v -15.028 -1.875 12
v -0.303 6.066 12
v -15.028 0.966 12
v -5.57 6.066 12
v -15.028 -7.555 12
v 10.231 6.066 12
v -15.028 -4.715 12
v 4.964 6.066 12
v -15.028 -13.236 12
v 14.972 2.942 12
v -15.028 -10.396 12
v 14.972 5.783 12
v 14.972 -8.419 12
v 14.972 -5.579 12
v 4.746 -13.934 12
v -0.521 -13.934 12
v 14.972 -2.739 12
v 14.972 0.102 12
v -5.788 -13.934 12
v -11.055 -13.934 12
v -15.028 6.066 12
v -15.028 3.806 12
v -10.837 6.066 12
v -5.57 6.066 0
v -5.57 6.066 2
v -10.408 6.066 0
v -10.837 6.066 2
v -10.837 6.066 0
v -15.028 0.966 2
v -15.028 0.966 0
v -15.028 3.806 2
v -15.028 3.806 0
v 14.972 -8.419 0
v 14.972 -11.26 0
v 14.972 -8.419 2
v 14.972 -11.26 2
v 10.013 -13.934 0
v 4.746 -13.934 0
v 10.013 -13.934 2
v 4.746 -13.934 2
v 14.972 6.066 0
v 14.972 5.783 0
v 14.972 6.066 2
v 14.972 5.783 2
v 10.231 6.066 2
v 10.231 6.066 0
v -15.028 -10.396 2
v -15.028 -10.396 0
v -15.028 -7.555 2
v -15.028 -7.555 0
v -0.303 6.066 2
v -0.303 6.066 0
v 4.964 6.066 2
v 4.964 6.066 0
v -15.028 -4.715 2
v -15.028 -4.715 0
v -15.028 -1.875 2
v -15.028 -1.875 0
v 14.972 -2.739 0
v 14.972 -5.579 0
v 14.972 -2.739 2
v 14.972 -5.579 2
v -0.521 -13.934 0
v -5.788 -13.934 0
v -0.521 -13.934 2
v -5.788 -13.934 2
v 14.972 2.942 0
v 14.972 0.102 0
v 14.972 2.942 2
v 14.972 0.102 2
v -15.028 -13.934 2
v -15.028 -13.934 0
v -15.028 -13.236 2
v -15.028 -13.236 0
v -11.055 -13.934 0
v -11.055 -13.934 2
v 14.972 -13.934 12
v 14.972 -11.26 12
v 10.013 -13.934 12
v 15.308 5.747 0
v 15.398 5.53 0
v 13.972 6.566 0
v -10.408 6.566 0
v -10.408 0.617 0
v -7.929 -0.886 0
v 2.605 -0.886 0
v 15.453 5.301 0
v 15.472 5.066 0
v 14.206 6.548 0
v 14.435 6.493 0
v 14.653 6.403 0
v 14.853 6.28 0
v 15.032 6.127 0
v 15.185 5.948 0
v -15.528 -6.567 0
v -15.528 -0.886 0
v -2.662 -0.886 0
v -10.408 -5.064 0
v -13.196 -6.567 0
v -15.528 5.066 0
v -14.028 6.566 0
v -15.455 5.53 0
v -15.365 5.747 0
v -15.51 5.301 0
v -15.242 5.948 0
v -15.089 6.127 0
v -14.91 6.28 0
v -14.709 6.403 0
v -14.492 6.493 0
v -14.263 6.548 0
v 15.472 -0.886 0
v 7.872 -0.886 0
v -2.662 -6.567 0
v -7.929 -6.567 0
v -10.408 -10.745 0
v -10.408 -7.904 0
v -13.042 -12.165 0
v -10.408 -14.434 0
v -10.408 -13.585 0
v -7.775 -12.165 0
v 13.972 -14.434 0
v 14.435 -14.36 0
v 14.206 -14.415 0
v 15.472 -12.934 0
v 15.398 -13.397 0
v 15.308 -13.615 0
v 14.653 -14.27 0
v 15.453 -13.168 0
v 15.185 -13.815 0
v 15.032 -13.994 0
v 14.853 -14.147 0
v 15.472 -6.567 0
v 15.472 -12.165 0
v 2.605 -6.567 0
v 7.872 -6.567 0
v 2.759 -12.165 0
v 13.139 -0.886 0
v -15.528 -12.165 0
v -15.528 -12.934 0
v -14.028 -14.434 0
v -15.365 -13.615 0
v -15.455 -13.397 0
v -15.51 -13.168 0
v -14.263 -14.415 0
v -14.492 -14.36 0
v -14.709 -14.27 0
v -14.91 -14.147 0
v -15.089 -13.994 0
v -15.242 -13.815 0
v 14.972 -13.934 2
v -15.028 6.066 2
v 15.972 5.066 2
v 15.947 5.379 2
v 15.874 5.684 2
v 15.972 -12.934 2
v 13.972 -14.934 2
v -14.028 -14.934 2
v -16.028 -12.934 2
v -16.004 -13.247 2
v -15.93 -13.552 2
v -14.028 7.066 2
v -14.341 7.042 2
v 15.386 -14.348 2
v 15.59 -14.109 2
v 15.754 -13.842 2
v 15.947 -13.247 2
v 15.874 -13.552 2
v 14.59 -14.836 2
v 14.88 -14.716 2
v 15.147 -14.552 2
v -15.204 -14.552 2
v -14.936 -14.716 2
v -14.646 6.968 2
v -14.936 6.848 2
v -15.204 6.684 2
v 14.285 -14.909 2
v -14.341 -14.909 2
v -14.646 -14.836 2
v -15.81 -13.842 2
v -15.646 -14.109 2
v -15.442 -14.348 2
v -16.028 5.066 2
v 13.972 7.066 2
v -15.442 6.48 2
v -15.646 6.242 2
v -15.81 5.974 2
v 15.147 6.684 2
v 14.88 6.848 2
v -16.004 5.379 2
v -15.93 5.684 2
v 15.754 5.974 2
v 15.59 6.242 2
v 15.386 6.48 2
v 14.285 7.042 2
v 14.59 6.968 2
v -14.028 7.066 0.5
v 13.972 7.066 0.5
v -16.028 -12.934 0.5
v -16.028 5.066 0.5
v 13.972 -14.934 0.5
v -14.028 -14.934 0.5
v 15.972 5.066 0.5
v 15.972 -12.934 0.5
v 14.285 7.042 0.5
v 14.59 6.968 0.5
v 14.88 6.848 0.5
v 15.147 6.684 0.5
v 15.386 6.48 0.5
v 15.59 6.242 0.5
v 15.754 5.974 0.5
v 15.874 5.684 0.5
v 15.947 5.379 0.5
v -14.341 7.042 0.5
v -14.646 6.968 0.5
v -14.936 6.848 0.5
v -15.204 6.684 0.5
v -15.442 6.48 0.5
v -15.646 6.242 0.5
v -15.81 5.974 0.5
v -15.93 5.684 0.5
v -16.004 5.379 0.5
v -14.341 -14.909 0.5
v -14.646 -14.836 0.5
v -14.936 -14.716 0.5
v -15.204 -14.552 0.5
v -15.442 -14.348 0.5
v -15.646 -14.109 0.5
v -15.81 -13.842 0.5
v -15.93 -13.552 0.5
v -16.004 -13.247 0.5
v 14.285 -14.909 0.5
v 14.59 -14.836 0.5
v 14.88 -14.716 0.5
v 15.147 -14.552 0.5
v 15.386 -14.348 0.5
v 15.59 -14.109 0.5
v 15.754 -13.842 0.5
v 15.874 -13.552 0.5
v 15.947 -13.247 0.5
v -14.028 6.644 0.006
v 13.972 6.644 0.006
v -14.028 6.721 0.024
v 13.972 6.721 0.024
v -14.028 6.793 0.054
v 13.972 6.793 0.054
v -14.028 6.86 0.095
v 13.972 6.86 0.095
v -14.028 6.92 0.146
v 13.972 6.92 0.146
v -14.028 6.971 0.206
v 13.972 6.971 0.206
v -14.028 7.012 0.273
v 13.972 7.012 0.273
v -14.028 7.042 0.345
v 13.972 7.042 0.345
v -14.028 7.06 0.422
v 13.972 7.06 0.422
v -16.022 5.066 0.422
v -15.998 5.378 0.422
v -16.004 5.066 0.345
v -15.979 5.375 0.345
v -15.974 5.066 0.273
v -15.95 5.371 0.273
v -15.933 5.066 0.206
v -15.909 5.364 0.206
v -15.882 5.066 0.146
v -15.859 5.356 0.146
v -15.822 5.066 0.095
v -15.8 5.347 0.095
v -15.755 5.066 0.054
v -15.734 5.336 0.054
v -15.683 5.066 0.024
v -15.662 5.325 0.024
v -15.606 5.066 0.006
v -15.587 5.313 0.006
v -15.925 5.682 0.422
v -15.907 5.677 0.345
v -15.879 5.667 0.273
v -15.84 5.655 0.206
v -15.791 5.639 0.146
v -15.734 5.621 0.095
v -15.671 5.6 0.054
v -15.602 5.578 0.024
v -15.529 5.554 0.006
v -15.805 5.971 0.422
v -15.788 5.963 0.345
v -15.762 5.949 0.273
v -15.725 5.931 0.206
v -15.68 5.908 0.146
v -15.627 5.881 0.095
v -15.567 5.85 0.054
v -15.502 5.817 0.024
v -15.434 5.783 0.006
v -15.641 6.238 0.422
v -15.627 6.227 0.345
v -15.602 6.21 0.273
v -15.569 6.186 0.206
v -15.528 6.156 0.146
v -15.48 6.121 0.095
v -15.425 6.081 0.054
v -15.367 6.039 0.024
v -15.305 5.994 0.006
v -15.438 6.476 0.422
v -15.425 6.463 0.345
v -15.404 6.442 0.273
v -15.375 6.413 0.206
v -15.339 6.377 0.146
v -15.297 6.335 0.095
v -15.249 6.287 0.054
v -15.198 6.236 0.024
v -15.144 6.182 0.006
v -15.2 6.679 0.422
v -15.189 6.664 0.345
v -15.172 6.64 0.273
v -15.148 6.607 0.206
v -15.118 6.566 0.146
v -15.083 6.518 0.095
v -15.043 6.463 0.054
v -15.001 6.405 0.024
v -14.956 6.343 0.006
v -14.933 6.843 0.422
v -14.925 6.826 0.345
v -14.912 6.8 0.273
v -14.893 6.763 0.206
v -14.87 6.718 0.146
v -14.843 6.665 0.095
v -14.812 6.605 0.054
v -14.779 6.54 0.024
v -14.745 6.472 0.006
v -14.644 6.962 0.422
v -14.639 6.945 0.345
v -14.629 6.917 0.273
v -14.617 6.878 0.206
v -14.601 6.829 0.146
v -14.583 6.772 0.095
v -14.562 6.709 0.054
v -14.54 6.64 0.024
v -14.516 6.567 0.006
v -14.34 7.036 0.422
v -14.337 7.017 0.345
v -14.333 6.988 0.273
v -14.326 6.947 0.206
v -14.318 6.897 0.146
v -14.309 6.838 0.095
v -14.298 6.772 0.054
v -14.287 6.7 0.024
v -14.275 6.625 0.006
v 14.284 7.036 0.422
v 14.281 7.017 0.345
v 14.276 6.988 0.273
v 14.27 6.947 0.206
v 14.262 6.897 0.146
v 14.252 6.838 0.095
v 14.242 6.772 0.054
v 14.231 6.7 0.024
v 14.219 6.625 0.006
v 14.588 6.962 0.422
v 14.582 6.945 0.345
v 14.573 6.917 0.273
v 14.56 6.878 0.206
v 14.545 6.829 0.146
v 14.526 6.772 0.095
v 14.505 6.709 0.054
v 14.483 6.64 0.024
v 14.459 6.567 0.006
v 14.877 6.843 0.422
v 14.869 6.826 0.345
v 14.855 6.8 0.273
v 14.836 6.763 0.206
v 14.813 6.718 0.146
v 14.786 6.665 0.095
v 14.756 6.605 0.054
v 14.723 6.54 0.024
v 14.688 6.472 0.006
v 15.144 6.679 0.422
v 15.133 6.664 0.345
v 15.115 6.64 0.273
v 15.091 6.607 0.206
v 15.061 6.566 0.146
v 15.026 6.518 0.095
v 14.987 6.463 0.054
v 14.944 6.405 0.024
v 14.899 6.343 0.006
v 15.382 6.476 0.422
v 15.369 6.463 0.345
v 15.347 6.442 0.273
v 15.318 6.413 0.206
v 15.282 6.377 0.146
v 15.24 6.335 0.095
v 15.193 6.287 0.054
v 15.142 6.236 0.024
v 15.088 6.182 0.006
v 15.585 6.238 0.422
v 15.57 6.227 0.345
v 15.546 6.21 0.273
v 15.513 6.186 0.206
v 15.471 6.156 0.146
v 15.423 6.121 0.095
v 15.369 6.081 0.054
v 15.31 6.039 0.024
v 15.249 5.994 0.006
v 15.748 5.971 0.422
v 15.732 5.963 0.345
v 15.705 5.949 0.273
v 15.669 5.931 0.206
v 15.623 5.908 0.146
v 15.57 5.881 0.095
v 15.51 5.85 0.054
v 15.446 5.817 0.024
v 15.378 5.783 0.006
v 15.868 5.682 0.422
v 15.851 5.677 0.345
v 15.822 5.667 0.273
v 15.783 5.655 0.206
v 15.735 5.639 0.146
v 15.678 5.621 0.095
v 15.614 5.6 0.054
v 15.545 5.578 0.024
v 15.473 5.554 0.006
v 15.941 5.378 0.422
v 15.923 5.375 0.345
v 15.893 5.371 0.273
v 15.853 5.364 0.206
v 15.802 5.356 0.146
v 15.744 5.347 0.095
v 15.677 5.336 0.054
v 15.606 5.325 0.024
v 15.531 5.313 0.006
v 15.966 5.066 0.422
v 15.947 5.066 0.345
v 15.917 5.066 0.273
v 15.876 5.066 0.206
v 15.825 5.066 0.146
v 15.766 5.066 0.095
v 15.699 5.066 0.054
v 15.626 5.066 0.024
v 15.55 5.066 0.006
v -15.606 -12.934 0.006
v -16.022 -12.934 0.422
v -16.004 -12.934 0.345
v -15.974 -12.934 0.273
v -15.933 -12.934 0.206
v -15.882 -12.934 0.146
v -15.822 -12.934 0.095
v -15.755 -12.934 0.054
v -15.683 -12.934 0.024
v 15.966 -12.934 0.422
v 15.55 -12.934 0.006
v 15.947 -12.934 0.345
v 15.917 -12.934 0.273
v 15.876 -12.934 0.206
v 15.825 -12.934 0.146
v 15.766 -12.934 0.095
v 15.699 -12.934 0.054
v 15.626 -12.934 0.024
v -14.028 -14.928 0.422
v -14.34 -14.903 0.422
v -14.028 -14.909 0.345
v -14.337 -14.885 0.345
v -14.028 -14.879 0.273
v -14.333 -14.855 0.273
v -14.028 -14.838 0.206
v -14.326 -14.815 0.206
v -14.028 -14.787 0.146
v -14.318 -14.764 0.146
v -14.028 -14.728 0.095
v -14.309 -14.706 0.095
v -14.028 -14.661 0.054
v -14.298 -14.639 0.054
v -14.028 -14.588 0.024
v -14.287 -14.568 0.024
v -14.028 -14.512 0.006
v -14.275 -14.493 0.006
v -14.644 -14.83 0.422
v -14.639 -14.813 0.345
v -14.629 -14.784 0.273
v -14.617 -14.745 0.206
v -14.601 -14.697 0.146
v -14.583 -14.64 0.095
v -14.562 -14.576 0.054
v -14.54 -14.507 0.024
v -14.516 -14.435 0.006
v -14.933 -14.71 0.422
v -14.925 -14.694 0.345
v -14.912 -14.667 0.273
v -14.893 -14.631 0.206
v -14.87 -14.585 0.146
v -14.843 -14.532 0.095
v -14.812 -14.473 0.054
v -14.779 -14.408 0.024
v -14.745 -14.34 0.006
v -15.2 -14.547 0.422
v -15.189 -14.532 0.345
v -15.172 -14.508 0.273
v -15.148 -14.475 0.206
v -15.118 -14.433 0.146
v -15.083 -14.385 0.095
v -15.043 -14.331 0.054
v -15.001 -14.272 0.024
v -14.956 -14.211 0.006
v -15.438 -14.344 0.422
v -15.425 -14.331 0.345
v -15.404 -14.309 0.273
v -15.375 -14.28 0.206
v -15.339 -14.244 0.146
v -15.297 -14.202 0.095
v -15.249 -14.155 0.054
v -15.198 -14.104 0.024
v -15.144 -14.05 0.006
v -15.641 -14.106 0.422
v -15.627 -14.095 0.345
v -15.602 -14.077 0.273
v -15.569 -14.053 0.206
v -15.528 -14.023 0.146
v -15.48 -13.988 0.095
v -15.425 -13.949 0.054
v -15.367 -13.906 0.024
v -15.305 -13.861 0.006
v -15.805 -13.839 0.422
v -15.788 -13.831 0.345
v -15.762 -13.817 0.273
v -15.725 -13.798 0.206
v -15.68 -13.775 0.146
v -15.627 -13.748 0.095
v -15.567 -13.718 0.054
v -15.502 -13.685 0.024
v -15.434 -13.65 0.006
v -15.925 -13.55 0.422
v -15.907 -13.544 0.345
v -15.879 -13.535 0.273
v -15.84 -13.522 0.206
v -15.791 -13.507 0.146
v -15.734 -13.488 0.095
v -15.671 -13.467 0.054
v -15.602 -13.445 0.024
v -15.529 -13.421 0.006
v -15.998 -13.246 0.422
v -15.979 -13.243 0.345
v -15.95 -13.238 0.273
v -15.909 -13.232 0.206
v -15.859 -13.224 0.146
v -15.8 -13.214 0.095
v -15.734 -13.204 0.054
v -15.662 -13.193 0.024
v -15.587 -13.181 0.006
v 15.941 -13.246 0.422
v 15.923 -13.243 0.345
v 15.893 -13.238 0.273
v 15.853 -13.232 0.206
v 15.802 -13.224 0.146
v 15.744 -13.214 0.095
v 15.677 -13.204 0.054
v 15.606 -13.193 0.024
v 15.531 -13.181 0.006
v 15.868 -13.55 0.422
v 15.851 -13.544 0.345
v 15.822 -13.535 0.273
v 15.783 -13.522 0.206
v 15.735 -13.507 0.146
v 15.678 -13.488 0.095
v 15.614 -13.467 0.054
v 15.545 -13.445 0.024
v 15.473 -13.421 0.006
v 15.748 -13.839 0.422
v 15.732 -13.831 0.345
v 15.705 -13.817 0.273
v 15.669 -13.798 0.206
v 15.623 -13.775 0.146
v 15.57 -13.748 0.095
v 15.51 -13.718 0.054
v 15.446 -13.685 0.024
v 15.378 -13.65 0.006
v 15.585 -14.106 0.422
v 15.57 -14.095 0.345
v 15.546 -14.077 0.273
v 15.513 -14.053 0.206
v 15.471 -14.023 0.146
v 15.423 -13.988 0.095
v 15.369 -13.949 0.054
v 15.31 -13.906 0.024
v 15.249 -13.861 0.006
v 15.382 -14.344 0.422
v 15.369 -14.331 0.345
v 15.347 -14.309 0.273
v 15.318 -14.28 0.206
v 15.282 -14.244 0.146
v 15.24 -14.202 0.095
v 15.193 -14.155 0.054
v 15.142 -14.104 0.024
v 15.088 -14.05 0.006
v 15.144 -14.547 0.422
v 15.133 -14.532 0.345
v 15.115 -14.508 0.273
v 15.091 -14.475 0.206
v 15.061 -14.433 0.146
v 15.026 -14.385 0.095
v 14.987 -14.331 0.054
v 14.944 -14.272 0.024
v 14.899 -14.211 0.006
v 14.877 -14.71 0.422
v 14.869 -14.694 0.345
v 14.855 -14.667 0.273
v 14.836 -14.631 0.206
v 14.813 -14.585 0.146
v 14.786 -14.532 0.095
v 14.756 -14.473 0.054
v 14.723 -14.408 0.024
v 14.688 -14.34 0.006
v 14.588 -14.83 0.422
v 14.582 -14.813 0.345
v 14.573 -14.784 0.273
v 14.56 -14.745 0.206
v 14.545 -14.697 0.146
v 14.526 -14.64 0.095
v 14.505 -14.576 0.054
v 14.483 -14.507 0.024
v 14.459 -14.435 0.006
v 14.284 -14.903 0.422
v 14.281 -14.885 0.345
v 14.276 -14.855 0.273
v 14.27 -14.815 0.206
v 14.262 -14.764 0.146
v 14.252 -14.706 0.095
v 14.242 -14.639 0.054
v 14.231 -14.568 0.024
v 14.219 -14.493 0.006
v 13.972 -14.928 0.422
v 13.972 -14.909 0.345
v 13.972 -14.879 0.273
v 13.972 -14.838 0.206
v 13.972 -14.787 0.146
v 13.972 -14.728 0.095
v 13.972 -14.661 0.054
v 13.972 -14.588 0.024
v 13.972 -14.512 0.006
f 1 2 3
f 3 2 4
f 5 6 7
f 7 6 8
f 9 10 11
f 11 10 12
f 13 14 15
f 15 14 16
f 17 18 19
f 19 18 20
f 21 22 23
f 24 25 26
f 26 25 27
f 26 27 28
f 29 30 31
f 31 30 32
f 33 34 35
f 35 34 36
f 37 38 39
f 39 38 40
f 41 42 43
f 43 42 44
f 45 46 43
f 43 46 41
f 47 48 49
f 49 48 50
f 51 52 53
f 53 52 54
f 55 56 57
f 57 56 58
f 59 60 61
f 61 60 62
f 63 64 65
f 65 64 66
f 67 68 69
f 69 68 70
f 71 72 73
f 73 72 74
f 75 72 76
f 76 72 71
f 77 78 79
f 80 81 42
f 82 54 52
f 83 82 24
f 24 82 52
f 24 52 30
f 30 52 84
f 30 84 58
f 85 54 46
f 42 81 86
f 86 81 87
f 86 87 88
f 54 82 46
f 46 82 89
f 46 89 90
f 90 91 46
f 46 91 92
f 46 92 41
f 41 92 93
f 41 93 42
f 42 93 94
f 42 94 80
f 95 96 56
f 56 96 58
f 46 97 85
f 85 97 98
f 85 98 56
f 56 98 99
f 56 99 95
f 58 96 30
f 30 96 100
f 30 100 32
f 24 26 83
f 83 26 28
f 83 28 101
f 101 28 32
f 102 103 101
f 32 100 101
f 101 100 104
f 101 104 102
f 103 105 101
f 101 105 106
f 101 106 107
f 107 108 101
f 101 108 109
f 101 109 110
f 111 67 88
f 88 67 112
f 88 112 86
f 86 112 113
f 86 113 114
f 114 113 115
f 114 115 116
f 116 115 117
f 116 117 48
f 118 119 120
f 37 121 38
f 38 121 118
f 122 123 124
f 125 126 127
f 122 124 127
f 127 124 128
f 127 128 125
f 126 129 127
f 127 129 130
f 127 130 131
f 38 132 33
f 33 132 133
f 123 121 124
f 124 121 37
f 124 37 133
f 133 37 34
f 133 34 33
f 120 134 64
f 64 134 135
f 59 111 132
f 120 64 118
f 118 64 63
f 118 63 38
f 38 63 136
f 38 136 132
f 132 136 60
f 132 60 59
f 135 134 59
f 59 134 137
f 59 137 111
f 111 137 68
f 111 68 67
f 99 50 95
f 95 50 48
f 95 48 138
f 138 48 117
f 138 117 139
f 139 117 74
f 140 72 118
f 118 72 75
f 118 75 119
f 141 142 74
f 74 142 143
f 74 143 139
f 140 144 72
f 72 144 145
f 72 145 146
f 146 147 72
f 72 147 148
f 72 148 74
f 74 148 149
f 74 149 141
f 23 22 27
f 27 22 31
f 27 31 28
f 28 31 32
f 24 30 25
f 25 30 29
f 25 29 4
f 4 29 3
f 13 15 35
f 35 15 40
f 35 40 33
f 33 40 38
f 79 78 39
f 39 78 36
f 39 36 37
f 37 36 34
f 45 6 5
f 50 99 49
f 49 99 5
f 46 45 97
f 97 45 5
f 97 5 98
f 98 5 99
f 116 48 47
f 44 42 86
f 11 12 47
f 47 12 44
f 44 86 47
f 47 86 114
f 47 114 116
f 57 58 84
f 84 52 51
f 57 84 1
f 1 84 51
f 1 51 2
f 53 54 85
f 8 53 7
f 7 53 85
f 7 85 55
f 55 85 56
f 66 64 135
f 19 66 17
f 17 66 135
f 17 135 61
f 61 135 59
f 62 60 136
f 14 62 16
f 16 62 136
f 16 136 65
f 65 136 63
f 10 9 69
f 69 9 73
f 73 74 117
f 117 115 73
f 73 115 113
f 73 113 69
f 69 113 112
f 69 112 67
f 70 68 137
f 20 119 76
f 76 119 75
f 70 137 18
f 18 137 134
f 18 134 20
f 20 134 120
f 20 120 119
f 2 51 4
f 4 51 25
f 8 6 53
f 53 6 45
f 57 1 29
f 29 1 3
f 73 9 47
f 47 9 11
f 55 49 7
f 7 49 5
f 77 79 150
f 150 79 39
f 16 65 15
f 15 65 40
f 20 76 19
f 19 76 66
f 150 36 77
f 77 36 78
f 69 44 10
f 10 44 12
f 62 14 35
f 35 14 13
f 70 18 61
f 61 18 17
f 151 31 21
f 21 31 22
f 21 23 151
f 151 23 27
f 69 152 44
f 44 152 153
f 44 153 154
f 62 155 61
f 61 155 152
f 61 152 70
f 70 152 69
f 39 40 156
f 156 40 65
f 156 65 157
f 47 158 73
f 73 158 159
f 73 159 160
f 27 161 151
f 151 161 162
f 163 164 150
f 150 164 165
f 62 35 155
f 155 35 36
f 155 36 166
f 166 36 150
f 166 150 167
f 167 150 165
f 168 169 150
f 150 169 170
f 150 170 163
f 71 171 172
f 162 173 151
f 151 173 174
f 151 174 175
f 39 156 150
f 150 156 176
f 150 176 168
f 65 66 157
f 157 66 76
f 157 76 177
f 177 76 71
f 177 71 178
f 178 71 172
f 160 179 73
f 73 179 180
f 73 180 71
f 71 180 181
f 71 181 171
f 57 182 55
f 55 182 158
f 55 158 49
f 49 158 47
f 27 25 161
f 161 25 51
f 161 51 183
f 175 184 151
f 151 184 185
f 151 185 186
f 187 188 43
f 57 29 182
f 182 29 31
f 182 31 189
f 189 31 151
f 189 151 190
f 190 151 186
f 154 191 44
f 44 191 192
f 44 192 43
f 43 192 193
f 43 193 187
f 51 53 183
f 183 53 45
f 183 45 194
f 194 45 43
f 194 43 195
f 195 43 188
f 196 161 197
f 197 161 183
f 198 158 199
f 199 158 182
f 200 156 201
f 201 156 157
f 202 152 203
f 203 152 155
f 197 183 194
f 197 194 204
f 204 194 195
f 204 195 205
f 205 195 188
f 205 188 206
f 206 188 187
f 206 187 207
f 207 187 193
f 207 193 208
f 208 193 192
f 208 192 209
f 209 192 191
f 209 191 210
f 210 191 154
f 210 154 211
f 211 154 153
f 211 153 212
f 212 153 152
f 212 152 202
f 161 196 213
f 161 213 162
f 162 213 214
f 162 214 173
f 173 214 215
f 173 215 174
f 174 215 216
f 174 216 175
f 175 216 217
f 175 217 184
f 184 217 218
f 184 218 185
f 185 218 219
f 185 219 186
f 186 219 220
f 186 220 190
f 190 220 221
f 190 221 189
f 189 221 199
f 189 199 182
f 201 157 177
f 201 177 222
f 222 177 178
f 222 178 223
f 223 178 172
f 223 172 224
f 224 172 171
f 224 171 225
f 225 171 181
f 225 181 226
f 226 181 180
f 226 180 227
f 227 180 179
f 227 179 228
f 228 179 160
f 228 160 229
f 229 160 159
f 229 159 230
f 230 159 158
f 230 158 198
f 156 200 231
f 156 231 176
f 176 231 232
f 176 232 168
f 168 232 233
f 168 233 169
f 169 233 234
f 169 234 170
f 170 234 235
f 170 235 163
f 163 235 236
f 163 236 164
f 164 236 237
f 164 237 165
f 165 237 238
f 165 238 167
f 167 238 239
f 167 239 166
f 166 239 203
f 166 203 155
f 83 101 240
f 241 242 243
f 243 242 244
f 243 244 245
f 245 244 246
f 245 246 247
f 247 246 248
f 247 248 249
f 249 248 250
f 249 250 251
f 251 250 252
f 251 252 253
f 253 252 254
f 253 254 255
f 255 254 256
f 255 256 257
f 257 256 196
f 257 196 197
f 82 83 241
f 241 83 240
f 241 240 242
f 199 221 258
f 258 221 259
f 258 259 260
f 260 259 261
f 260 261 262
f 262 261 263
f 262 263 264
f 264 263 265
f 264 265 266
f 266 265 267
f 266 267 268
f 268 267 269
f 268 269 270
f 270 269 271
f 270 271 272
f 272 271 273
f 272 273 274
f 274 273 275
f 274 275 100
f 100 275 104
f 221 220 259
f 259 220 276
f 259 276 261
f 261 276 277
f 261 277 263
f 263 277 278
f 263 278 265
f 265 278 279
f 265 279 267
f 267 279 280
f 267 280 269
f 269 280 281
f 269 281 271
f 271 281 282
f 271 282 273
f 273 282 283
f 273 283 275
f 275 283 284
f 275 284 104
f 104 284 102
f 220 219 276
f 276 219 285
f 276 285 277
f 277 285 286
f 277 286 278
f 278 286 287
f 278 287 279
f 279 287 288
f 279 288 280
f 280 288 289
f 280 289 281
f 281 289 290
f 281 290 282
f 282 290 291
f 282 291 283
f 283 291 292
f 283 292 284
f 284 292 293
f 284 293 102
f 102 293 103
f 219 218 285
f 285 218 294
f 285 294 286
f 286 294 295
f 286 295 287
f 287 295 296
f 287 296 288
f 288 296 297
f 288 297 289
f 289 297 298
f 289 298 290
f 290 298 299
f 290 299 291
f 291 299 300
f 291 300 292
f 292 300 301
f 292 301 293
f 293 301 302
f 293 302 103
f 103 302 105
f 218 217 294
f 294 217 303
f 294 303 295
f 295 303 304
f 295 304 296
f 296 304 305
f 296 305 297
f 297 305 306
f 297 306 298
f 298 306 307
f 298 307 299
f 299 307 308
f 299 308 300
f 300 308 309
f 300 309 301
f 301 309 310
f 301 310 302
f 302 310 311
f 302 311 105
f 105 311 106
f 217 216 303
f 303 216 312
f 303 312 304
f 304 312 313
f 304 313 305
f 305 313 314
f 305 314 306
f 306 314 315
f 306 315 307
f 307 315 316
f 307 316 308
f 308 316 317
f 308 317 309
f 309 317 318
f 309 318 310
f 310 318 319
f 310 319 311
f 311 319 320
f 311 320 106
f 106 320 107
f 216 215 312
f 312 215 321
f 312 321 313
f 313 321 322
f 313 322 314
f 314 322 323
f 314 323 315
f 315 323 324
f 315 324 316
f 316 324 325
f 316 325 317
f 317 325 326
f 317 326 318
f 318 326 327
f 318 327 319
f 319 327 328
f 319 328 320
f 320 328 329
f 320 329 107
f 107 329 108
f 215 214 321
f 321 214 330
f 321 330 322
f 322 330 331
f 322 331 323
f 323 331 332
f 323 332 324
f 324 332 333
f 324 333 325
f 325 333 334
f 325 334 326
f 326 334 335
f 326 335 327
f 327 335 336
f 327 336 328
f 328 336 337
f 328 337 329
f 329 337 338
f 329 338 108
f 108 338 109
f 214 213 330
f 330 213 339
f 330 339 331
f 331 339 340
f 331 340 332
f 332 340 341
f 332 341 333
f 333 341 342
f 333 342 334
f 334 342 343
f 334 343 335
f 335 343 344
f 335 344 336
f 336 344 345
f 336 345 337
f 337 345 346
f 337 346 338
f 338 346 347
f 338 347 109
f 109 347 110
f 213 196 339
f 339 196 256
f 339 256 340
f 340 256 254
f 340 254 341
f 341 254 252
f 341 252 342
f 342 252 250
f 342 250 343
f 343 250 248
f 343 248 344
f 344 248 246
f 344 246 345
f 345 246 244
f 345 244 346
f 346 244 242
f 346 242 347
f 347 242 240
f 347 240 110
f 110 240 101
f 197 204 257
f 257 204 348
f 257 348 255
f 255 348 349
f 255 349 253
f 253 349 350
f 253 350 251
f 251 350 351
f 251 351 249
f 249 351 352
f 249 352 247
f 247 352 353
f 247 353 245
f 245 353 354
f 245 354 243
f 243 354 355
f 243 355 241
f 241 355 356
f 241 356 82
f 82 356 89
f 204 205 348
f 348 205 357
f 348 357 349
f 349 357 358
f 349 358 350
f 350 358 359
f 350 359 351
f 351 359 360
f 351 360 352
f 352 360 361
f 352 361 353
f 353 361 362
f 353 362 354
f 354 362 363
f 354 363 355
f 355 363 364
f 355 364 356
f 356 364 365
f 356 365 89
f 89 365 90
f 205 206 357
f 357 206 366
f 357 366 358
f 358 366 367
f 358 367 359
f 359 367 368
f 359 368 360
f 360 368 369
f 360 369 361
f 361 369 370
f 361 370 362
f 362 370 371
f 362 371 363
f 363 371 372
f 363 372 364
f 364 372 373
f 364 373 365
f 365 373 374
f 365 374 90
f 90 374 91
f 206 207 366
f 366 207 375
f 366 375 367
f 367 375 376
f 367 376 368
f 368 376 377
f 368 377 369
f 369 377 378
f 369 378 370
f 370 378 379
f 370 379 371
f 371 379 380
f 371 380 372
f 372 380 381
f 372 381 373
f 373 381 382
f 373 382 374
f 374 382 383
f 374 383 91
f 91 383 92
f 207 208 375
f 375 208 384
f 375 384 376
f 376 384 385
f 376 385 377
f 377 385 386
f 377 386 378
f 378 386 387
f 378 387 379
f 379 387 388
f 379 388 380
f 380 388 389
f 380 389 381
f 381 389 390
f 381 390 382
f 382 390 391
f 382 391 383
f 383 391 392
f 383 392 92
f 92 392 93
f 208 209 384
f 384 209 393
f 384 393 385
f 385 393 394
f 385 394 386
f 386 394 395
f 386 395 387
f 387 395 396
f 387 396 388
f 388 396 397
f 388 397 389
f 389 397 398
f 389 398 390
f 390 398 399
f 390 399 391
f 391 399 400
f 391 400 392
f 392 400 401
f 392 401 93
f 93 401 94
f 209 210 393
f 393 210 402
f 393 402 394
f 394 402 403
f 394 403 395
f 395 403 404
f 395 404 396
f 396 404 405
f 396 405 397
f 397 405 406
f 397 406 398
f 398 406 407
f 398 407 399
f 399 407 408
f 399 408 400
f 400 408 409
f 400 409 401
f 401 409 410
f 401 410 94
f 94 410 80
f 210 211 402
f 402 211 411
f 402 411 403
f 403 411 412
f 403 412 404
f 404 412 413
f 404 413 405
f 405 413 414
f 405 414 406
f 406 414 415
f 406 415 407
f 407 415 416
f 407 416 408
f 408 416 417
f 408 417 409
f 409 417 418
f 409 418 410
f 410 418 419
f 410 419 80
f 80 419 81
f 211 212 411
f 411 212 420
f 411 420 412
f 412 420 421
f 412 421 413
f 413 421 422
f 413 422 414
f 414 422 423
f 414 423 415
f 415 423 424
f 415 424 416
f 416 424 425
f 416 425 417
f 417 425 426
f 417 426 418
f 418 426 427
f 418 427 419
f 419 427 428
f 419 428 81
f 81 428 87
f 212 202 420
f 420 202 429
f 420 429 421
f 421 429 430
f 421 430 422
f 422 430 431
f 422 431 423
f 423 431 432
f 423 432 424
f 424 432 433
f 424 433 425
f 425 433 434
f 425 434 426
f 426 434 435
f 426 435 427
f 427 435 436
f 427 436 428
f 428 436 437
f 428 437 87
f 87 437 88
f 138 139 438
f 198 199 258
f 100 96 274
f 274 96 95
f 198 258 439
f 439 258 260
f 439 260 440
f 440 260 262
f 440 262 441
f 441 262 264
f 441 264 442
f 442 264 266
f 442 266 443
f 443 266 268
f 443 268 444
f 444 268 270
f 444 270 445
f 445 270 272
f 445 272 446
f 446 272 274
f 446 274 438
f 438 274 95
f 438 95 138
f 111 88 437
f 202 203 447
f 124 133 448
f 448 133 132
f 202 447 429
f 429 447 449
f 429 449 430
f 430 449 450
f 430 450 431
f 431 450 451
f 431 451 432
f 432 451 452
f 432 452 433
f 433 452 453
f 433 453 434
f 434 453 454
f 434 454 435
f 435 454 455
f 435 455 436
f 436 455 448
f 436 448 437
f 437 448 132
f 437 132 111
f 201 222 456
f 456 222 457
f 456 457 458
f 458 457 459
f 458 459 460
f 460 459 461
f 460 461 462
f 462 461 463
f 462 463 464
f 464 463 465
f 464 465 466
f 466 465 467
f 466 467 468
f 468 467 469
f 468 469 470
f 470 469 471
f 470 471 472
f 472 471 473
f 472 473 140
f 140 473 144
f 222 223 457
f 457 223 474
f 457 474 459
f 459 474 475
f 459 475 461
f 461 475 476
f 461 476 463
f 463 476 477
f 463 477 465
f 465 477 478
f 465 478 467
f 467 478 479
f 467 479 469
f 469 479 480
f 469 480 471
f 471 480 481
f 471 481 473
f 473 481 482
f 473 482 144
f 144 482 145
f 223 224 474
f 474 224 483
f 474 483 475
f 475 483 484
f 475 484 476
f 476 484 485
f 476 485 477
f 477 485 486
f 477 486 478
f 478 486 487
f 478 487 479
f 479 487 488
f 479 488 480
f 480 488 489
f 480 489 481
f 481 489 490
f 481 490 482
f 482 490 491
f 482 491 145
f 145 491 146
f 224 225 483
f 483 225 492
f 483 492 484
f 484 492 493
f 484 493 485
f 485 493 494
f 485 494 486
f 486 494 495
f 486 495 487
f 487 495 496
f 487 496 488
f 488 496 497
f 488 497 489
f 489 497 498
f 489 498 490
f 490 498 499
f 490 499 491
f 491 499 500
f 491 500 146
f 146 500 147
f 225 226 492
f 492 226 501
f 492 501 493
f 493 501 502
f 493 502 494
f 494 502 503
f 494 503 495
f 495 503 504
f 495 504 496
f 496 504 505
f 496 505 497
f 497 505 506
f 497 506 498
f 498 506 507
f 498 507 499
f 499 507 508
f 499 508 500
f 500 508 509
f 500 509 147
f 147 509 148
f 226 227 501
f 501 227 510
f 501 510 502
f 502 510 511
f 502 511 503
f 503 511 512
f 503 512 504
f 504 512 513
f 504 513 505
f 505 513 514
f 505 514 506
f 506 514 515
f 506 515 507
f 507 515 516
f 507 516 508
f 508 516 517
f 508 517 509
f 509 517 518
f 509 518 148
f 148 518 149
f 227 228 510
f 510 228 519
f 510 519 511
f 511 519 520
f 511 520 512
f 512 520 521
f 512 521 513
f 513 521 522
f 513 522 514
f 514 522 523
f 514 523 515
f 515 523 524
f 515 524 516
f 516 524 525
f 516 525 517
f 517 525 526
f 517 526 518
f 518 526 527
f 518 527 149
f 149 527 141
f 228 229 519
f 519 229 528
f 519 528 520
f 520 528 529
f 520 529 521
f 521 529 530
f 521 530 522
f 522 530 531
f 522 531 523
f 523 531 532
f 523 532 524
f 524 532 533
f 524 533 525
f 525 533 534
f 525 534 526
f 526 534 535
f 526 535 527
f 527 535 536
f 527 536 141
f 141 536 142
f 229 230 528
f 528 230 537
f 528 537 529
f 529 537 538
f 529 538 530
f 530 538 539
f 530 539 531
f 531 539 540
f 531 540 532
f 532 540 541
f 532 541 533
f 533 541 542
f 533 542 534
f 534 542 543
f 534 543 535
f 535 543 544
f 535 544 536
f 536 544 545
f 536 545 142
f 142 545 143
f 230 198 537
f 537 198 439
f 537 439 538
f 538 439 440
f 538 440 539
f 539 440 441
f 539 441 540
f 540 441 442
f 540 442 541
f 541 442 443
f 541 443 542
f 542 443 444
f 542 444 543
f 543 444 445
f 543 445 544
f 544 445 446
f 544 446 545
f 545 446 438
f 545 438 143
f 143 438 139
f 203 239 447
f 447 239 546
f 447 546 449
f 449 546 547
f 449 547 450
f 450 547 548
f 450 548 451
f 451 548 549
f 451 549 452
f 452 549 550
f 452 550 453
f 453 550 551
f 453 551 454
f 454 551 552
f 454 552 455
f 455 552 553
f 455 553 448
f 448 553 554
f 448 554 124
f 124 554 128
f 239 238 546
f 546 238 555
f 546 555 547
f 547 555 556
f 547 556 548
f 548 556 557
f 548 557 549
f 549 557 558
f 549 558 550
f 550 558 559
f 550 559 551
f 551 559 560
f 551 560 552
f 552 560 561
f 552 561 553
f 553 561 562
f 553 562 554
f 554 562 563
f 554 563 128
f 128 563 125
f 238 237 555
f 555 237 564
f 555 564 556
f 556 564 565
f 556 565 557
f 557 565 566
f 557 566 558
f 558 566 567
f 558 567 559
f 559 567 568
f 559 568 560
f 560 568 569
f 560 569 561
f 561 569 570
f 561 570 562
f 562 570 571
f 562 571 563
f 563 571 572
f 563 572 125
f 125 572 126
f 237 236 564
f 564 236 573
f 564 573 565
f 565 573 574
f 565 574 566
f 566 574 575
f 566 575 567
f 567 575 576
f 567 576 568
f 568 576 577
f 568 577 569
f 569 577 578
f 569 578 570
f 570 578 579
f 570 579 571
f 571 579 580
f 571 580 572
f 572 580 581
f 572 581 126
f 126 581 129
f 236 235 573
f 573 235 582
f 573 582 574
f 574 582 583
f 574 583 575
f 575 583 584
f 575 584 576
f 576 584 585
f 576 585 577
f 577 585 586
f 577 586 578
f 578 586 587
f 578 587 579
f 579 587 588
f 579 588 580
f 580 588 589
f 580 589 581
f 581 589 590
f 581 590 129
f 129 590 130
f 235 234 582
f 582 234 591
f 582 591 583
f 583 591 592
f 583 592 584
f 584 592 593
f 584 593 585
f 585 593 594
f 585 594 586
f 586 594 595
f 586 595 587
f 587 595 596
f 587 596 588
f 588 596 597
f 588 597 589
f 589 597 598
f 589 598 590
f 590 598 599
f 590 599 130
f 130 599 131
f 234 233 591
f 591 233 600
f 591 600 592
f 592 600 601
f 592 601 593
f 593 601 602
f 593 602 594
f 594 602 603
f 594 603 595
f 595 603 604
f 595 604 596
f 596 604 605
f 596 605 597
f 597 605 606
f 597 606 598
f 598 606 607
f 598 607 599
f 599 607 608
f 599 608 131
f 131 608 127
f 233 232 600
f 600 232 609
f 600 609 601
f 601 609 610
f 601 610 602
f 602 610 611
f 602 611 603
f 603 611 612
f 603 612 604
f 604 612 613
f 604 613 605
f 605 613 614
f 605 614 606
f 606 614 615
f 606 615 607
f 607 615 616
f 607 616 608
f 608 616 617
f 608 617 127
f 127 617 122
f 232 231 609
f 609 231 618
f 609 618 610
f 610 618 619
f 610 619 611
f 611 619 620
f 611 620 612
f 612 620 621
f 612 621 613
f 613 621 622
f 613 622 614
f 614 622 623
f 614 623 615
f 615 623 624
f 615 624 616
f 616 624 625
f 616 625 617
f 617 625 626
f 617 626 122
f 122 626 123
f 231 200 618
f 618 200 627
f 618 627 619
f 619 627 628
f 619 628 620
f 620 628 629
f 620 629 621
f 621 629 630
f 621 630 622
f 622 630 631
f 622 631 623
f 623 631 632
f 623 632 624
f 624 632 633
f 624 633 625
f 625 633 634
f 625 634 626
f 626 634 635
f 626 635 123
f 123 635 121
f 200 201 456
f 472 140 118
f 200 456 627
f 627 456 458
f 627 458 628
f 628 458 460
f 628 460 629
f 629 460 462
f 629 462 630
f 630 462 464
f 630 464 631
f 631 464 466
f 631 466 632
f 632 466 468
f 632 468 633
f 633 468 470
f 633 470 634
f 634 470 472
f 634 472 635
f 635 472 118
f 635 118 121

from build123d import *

# Parameters (mm, degrees)
SKETCH_1_W          = 35
SKETCH_1_H          = 25
EXTRUDE_1_DEPTH     = 12
CUT_EXTRUDE_1_DEPTH = 12
SKETCH_3_W          = 35
SKETCH_3_H          = 25
CUT_EXTRUDE_2_DEPTH = 10
FILLET_1_R          = 3
FILLET_2_R          = 0.5
SKETCH_4_W          = 32
SKETCH_4_H          = 22
CUT_EXTRUDE_3_DEPTH = 10
FILLET_3_R          = 2
FILLET_4_R          = 0.5


with BuildPart() as part:
    # 草图1 → 凸台-拉伸1 (new body)
    with BuildSketch(Plane.XY):
        with Locations((-0.028271405, -3.933764136)):
            Rectangle(SKETCH_1_W, SKETCH_1_H)
    extrude(amount=EXTRUDE_1_DEPTH)

    # 草图2 → 切除-拉伸1 (cut)
    with BuildSketch(Plane(origin=(0, 0, 0), x_dir=(-1, 0, 0), z_dir=(0, 0, -1))):
        Polygon((10.837079767, 6.066235864), (5.570103523, 6.066235864), (15.028271405, 0.96567043), (15.028271405, 3.806025698), align=None)
        Polygon((0.303127279, 6.066235864), (-4.963848965, 6.066235864), (15.028271405, -4.715040108), (15.028271405, -1.874684839), align=None)
        Polygon((-10.23082521, 6.066235864), (-14.971728595, 6.066235864), (-14.971728595, 5.782537258), (15.028271405, -10.395750645), (15.028271405, -7.555395376), align=None)
        Polygon((15.028271405, -13.236105913), (-14.971728595, 2.94218199), (-14.971728595, 0.101826721), (11.054988709, -13.933764136), (15.028271405, -13.933764136), align=None)
        Polygon((5.788012464, -13.933764136), (-14.971728595, -2.738528547), (-14.971728595, -5.578883816), (0.52103622, -13.933764136), align=None)
        Polygon((-4.745940024, -13.933764136), (-14.971728595, -8.419239085), (-14.971728595, -11.259594353), (-10.012916268, -13.933764136), align=None)
    extrude(amount=-CUT_EXTRUDE_1_DEPTH, mode=Mode.SUBTRACT)

    # 草图3 → 切除-拉伸2 (cut)
    with BuildSketch(Plane.XY.offset(12)):
        with Locations((-0.028271405, -3.933764136)):
            Rectangle(SKETCH_3_W, SKETCH_3_H)
        Polygon((10.23082521, 6.066235864), (14.971728595, 6.066235864), (14.971728595, 5.782537258), (14.971728595, 2.94218199), (14.971728595, 0.101826721), (14.971728595, -2.738528547), (14.971728595, -5.578883816), (14.971728595, -8.419239085), (14.971728595, -11.259594353), (14.971728595, -13.933764136), (10.012916268, -13.933764136), (4.745940024, -13.933764136), (-0.52103622, -13.933764136), (-5.788012464, -13.933764136), (-11.054988709, -13.933764136), (-15.028271405, -13.933764136), (-15.028271405, -13.236105913), (-15.028271405, -10.395750645), (-15.028271405, -7.555395376), (-15.028271405, -4.715040108), (-15.028271405, -1.874684839), (-15.028271405, 0.96567043), (-15.028271405, 3.806025698), (-15.028271405, 6.066235864), (-10.837079767, 6.066235864), (-5.570103523, 6.066235864), (-0.303127279, 6.066235864), (4.963848965, 6.066235864), align=None, mode=Mode.SUBTRACT)
    extrude(amount=-CUT_EXTRUDE_2_DEPTH, mode=Mode.SUBTRACT)

    # 圆角1
    fillet_1_edges = [part.edges().sort_by_distance(p)[0] for p in [
        (-17.528271405, 8.566235864, 1),
        (17.471728595, 8.566235864, 1),
        (17.471728595, -16.433764136, 1),
        (-17.528271405, -16.433764136, 1),
    ]]
    fillet(fillet_1_edges, radius=FILLET_1_R)

    # 圆角2
    fillet_2_edges = [part.edges().sort_by_distance(p)[0] for p in [
        (17.471728595, -3.933764136, 0),
        (-17.528271405, -3.933764136, 0),
        (-0.028271405, 8.566235864, 0),
        (-0.028271405, -16.433764136, 0),
        (16.593048938, 7.687556208, 0),
        (-16.649591749, 7.687556208, 0),
        (-16.649591749, -15.555084479, 0),
        (16.593048938, -15.555084479, 0),
    ]]
    fillet(fillet_2_edges, radius=FILLET_2_R)

    # 草图4 → 切除-拉伸3 (cut)
    with BuildSketch(Plane.XY.offset(2)):
        with BuildLine():
            ThreePointArc((-17.528271405, -13.433764136), (-16.649591749, -15.555084479), (-14.528271405, -16.433764136))
            Line((-14.528271405, -16.433764136), (14.471728595, -16.433764136))
            ThreePointArc((14.471728595, -16.433764136), (16.593048938, -15.555084479), (17.471728595, -13.433764136))
            Line((17.471728595, -13.433764136), (17.471728595, 5.566235864))
            ThreePointArc((17.471728595, 5.566235864), (16.593048938, 7.687556208), (14.471728595, 8.566235864))
            Line((14.471728595, 8.566235864), (-14.528271405, 8.566235864))
            ThreePointArc((-14.528271405, 8.566235864), (-16.649591749, 7.687556208), (-17.528271405, 5.566235864))
            Line((-17.528271405, 5.566235864), (-17.528271405, -13.433764136))
        make_face()
        with Locations((-0.028271405, -3.933764136)):
            Rectangle(SKETCH_4_W, SKETCH_4_H, mode=Mode.SUBTRACT)
    extrude(amount=-CUT_EXTRUDE_3_DEPTH, mode=Mode.SUBTRACT)

    # 圆角3
    fillet_3_edges = [part.edges().sort_by_distance(p)[0] for p in [
        (15.971728595, 7.066235864, 1),
        (-16.028271405, 7.066235864, 1),
        (-16.028271405, -14.933764136, 1),
        (15.971728595, -14.933764136, 1),
    ]]
    fillet(fillet_3_edges, radius=FILLET_3_R)

    # 圆角4
    fillet_4_edges = [part.edges().sort_by_distance(p)[0] for p in [
        (15.971728595, -3.933764136, 0),
        (-0.028271405, 7.066235864, 0),
        (-16.028271405, -3.933764136, 0),
        (-0.028271405, -14.933764136, 0),
        (15.385942157, -14.347977698, 0),
        (-15.442484968, -14.347977698, 0),
        (-15.442484968, 6.480449427, 0),
        (15.385942157, 6.480449427, 0),
    ]]
    fillet(fillet_4_edges, radius=FILLET_4_R)


solid = part.part
